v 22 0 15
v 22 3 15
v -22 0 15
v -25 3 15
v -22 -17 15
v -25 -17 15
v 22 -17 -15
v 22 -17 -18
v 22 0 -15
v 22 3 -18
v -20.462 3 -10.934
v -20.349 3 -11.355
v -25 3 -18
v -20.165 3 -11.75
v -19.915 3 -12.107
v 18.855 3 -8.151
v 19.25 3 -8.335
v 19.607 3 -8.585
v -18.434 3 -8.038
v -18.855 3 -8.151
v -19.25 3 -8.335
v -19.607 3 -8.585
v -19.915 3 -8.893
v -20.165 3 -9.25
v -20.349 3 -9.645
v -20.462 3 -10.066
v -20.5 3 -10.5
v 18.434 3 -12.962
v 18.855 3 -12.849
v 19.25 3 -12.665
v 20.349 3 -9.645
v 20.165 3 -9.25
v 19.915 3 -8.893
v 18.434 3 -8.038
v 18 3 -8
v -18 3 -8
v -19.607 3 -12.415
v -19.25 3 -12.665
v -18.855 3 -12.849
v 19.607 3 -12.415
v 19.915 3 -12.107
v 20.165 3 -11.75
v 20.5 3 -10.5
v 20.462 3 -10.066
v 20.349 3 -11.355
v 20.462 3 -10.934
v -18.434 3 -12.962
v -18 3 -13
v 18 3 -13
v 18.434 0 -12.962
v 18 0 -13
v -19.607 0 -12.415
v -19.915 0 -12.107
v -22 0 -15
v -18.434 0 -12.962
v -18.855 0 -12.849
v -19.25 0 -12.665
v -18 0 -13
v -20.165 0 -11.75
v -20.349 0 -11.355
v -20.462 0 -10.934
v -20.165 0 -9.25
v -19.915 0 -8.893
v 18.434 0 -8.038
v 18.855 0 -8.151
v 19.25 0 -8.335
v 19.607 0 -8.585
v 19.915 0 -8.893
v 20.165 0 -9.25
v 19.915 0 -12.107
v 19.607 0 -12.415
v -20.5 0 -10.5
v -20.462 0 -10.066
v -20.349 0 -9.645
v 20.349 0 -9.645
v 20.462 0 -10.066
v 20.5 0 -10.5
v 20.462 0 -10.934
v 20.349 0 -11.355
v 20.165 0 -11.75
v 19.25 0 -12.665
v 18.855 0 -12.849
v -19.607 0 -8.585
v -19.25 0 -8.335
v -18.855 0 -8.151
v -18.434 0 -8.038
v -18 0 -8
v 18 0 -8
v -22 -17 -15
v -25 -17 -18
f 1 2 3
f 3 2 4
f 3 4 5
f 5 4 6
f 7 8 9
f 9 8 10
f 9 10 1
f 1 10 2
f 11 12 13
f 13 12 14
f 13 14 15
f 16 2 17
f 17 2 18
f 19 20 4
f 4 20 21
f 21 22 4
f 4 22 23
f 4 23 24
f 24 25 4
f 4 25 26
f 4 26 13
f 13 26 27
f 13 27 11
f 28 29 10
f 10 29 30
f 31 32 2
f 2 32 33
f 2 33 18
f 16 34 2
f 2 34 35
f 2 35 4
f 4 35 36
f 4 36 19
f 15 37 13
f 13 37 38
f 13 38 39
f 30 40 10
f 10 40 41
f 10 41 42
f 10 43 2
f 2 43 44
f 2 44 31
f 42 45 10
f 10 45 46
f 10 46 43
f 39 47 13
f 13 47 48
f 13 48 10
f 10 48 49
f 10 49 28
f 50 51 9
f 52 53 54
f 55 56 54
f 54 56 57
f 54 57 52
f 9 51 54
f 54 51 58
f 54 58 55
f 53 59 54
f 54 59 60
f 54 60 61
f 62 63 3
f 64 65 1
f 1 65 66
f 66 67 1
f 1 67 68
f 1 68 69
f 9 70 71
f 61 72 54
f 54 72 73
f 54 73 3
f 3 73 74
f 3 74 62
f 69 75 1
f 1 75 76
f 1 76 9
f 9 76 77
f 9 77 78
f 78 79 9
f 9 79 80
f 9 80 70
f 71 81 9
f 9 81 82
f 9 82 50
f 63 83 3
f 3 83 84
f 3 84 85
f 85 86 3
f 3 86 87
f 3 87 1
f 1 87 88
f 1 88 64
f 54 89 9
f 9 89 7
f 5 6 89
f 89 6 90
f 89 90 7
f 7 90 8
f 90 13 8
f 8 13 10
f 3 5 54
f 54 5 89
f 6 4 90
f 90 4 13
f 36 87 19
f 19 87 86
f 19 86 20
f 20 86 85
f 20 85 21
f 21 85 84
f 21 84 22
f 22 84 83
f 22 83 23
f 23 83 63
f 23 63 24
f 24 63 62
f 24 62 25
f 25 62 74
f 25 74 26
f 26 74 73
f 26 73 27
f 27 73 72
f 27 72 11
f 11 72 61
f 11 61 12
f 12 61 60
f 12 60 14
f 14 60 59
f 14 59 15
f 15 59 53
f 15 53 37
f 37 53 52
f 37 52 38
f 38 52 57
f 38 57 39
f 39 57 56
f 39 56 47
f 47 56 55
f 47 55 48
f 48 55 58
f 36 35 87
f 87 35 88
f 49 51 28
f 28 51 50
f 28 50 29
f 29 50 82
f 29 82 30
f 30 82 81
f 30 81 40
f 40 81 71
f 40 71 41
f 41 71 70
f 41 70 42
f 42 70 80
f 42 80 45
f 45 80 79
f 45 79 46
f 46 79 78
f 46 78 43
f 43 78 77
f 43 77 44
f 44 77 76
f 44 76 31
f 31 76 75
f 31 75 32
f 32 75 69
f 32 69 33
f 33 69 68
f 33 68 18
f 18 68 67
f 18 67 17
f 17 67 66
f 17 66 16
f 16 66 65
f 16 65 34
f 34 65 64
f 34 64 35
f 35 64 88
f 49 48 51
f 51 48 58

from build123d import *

# Parameters (mm, degrees)
SKETCH2_W           = 44
SKETCH2_H           = 30
BOSS_EXTRUDE1_DEPTH = 3
SKETCH3_W           = 44
SKETCH3_H           = 20
BOSS_EXTRUDE2_DEPTH = 3
SKETCH4_W           = 33
SKETCH4_H           = 20
BOSS_EXTRUDE3_DEPTH = 3
CUT_EXTRUDE1_DEPTH  = 3


with BuildPart() as part:
    # Sketch2 → Boss-Extrude1 (new body)
    with BuildSketch(Plane(origin=(0, 0, 0), x_dir=(1, 0, 0), z_dir=(0, 1, 0))):
        Rectangle(SKETCH2_W, SKETCH2_H)
    extrude(amount=BOSS_EXTRUDE1_DEPTH)

    # Sketch3 → Boss-Extrude2 (add)
    with BuildSketch(Plane(origin=(0, 0, -15), x_dir=(-1, 0, 0), z_dir=(0, 0, -1))):
        with Locations((0, -7)):
            Rectangle(SKETCH3_W, SKETCH3_H)
    extrude(amount=BOSS_EXTRUDE2_DEPTH)

    # Sketch4 → Boss-Extrude3 (add)
    with BuildSketch(Plane.ZY.offset(22)):
        with Locations((-1.5, -7)):
            Rectangle(SKETCH4_W, SKETCH4_H)
    extrude(amount=BOSS_EXTRUDE3_DEPTH)

    # Sketch5 → Cut-Extrude1 (cut)
    with BuildSketch(Plane.XZ):
        with BuildLine():
            Line((-18, -8), (18, -8))
            ThreePointArc((18, -8), (20.5, -10.5), (18, -13))
            Line((18, -13), (-18, -13))
            ThreePointArc((-18, -13), (-20.5, -10.5), (-18, -8))
        make_face()
    extrude(amount=-CUT_EXTRUDE1_DEPTH, mode=Mode.SUBTRACT)


solid = part.part
